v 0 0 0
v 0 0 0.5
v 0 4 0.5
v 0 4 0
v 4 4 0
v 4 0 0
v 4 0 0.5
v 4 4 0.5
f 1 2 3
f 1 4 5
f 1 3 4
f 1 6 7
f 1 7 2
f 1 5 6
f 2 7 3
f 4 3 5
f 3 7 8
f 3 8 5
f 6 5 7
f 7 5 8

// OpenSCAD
/* Warning, this is a very basic generator with a lot of approximation 
input data : [UQFN, R6X, 4x4x0.5mm, 28, , A, C04-00152A]
generated by com.zoubworld.electronics.cad.model3d.Basic
Date : Sun Feb 15 10:50:48 CET 2026
*/

//body
color("black")
translate([0,0,0])
cube([4.0,4.0,0.5], center=false);
